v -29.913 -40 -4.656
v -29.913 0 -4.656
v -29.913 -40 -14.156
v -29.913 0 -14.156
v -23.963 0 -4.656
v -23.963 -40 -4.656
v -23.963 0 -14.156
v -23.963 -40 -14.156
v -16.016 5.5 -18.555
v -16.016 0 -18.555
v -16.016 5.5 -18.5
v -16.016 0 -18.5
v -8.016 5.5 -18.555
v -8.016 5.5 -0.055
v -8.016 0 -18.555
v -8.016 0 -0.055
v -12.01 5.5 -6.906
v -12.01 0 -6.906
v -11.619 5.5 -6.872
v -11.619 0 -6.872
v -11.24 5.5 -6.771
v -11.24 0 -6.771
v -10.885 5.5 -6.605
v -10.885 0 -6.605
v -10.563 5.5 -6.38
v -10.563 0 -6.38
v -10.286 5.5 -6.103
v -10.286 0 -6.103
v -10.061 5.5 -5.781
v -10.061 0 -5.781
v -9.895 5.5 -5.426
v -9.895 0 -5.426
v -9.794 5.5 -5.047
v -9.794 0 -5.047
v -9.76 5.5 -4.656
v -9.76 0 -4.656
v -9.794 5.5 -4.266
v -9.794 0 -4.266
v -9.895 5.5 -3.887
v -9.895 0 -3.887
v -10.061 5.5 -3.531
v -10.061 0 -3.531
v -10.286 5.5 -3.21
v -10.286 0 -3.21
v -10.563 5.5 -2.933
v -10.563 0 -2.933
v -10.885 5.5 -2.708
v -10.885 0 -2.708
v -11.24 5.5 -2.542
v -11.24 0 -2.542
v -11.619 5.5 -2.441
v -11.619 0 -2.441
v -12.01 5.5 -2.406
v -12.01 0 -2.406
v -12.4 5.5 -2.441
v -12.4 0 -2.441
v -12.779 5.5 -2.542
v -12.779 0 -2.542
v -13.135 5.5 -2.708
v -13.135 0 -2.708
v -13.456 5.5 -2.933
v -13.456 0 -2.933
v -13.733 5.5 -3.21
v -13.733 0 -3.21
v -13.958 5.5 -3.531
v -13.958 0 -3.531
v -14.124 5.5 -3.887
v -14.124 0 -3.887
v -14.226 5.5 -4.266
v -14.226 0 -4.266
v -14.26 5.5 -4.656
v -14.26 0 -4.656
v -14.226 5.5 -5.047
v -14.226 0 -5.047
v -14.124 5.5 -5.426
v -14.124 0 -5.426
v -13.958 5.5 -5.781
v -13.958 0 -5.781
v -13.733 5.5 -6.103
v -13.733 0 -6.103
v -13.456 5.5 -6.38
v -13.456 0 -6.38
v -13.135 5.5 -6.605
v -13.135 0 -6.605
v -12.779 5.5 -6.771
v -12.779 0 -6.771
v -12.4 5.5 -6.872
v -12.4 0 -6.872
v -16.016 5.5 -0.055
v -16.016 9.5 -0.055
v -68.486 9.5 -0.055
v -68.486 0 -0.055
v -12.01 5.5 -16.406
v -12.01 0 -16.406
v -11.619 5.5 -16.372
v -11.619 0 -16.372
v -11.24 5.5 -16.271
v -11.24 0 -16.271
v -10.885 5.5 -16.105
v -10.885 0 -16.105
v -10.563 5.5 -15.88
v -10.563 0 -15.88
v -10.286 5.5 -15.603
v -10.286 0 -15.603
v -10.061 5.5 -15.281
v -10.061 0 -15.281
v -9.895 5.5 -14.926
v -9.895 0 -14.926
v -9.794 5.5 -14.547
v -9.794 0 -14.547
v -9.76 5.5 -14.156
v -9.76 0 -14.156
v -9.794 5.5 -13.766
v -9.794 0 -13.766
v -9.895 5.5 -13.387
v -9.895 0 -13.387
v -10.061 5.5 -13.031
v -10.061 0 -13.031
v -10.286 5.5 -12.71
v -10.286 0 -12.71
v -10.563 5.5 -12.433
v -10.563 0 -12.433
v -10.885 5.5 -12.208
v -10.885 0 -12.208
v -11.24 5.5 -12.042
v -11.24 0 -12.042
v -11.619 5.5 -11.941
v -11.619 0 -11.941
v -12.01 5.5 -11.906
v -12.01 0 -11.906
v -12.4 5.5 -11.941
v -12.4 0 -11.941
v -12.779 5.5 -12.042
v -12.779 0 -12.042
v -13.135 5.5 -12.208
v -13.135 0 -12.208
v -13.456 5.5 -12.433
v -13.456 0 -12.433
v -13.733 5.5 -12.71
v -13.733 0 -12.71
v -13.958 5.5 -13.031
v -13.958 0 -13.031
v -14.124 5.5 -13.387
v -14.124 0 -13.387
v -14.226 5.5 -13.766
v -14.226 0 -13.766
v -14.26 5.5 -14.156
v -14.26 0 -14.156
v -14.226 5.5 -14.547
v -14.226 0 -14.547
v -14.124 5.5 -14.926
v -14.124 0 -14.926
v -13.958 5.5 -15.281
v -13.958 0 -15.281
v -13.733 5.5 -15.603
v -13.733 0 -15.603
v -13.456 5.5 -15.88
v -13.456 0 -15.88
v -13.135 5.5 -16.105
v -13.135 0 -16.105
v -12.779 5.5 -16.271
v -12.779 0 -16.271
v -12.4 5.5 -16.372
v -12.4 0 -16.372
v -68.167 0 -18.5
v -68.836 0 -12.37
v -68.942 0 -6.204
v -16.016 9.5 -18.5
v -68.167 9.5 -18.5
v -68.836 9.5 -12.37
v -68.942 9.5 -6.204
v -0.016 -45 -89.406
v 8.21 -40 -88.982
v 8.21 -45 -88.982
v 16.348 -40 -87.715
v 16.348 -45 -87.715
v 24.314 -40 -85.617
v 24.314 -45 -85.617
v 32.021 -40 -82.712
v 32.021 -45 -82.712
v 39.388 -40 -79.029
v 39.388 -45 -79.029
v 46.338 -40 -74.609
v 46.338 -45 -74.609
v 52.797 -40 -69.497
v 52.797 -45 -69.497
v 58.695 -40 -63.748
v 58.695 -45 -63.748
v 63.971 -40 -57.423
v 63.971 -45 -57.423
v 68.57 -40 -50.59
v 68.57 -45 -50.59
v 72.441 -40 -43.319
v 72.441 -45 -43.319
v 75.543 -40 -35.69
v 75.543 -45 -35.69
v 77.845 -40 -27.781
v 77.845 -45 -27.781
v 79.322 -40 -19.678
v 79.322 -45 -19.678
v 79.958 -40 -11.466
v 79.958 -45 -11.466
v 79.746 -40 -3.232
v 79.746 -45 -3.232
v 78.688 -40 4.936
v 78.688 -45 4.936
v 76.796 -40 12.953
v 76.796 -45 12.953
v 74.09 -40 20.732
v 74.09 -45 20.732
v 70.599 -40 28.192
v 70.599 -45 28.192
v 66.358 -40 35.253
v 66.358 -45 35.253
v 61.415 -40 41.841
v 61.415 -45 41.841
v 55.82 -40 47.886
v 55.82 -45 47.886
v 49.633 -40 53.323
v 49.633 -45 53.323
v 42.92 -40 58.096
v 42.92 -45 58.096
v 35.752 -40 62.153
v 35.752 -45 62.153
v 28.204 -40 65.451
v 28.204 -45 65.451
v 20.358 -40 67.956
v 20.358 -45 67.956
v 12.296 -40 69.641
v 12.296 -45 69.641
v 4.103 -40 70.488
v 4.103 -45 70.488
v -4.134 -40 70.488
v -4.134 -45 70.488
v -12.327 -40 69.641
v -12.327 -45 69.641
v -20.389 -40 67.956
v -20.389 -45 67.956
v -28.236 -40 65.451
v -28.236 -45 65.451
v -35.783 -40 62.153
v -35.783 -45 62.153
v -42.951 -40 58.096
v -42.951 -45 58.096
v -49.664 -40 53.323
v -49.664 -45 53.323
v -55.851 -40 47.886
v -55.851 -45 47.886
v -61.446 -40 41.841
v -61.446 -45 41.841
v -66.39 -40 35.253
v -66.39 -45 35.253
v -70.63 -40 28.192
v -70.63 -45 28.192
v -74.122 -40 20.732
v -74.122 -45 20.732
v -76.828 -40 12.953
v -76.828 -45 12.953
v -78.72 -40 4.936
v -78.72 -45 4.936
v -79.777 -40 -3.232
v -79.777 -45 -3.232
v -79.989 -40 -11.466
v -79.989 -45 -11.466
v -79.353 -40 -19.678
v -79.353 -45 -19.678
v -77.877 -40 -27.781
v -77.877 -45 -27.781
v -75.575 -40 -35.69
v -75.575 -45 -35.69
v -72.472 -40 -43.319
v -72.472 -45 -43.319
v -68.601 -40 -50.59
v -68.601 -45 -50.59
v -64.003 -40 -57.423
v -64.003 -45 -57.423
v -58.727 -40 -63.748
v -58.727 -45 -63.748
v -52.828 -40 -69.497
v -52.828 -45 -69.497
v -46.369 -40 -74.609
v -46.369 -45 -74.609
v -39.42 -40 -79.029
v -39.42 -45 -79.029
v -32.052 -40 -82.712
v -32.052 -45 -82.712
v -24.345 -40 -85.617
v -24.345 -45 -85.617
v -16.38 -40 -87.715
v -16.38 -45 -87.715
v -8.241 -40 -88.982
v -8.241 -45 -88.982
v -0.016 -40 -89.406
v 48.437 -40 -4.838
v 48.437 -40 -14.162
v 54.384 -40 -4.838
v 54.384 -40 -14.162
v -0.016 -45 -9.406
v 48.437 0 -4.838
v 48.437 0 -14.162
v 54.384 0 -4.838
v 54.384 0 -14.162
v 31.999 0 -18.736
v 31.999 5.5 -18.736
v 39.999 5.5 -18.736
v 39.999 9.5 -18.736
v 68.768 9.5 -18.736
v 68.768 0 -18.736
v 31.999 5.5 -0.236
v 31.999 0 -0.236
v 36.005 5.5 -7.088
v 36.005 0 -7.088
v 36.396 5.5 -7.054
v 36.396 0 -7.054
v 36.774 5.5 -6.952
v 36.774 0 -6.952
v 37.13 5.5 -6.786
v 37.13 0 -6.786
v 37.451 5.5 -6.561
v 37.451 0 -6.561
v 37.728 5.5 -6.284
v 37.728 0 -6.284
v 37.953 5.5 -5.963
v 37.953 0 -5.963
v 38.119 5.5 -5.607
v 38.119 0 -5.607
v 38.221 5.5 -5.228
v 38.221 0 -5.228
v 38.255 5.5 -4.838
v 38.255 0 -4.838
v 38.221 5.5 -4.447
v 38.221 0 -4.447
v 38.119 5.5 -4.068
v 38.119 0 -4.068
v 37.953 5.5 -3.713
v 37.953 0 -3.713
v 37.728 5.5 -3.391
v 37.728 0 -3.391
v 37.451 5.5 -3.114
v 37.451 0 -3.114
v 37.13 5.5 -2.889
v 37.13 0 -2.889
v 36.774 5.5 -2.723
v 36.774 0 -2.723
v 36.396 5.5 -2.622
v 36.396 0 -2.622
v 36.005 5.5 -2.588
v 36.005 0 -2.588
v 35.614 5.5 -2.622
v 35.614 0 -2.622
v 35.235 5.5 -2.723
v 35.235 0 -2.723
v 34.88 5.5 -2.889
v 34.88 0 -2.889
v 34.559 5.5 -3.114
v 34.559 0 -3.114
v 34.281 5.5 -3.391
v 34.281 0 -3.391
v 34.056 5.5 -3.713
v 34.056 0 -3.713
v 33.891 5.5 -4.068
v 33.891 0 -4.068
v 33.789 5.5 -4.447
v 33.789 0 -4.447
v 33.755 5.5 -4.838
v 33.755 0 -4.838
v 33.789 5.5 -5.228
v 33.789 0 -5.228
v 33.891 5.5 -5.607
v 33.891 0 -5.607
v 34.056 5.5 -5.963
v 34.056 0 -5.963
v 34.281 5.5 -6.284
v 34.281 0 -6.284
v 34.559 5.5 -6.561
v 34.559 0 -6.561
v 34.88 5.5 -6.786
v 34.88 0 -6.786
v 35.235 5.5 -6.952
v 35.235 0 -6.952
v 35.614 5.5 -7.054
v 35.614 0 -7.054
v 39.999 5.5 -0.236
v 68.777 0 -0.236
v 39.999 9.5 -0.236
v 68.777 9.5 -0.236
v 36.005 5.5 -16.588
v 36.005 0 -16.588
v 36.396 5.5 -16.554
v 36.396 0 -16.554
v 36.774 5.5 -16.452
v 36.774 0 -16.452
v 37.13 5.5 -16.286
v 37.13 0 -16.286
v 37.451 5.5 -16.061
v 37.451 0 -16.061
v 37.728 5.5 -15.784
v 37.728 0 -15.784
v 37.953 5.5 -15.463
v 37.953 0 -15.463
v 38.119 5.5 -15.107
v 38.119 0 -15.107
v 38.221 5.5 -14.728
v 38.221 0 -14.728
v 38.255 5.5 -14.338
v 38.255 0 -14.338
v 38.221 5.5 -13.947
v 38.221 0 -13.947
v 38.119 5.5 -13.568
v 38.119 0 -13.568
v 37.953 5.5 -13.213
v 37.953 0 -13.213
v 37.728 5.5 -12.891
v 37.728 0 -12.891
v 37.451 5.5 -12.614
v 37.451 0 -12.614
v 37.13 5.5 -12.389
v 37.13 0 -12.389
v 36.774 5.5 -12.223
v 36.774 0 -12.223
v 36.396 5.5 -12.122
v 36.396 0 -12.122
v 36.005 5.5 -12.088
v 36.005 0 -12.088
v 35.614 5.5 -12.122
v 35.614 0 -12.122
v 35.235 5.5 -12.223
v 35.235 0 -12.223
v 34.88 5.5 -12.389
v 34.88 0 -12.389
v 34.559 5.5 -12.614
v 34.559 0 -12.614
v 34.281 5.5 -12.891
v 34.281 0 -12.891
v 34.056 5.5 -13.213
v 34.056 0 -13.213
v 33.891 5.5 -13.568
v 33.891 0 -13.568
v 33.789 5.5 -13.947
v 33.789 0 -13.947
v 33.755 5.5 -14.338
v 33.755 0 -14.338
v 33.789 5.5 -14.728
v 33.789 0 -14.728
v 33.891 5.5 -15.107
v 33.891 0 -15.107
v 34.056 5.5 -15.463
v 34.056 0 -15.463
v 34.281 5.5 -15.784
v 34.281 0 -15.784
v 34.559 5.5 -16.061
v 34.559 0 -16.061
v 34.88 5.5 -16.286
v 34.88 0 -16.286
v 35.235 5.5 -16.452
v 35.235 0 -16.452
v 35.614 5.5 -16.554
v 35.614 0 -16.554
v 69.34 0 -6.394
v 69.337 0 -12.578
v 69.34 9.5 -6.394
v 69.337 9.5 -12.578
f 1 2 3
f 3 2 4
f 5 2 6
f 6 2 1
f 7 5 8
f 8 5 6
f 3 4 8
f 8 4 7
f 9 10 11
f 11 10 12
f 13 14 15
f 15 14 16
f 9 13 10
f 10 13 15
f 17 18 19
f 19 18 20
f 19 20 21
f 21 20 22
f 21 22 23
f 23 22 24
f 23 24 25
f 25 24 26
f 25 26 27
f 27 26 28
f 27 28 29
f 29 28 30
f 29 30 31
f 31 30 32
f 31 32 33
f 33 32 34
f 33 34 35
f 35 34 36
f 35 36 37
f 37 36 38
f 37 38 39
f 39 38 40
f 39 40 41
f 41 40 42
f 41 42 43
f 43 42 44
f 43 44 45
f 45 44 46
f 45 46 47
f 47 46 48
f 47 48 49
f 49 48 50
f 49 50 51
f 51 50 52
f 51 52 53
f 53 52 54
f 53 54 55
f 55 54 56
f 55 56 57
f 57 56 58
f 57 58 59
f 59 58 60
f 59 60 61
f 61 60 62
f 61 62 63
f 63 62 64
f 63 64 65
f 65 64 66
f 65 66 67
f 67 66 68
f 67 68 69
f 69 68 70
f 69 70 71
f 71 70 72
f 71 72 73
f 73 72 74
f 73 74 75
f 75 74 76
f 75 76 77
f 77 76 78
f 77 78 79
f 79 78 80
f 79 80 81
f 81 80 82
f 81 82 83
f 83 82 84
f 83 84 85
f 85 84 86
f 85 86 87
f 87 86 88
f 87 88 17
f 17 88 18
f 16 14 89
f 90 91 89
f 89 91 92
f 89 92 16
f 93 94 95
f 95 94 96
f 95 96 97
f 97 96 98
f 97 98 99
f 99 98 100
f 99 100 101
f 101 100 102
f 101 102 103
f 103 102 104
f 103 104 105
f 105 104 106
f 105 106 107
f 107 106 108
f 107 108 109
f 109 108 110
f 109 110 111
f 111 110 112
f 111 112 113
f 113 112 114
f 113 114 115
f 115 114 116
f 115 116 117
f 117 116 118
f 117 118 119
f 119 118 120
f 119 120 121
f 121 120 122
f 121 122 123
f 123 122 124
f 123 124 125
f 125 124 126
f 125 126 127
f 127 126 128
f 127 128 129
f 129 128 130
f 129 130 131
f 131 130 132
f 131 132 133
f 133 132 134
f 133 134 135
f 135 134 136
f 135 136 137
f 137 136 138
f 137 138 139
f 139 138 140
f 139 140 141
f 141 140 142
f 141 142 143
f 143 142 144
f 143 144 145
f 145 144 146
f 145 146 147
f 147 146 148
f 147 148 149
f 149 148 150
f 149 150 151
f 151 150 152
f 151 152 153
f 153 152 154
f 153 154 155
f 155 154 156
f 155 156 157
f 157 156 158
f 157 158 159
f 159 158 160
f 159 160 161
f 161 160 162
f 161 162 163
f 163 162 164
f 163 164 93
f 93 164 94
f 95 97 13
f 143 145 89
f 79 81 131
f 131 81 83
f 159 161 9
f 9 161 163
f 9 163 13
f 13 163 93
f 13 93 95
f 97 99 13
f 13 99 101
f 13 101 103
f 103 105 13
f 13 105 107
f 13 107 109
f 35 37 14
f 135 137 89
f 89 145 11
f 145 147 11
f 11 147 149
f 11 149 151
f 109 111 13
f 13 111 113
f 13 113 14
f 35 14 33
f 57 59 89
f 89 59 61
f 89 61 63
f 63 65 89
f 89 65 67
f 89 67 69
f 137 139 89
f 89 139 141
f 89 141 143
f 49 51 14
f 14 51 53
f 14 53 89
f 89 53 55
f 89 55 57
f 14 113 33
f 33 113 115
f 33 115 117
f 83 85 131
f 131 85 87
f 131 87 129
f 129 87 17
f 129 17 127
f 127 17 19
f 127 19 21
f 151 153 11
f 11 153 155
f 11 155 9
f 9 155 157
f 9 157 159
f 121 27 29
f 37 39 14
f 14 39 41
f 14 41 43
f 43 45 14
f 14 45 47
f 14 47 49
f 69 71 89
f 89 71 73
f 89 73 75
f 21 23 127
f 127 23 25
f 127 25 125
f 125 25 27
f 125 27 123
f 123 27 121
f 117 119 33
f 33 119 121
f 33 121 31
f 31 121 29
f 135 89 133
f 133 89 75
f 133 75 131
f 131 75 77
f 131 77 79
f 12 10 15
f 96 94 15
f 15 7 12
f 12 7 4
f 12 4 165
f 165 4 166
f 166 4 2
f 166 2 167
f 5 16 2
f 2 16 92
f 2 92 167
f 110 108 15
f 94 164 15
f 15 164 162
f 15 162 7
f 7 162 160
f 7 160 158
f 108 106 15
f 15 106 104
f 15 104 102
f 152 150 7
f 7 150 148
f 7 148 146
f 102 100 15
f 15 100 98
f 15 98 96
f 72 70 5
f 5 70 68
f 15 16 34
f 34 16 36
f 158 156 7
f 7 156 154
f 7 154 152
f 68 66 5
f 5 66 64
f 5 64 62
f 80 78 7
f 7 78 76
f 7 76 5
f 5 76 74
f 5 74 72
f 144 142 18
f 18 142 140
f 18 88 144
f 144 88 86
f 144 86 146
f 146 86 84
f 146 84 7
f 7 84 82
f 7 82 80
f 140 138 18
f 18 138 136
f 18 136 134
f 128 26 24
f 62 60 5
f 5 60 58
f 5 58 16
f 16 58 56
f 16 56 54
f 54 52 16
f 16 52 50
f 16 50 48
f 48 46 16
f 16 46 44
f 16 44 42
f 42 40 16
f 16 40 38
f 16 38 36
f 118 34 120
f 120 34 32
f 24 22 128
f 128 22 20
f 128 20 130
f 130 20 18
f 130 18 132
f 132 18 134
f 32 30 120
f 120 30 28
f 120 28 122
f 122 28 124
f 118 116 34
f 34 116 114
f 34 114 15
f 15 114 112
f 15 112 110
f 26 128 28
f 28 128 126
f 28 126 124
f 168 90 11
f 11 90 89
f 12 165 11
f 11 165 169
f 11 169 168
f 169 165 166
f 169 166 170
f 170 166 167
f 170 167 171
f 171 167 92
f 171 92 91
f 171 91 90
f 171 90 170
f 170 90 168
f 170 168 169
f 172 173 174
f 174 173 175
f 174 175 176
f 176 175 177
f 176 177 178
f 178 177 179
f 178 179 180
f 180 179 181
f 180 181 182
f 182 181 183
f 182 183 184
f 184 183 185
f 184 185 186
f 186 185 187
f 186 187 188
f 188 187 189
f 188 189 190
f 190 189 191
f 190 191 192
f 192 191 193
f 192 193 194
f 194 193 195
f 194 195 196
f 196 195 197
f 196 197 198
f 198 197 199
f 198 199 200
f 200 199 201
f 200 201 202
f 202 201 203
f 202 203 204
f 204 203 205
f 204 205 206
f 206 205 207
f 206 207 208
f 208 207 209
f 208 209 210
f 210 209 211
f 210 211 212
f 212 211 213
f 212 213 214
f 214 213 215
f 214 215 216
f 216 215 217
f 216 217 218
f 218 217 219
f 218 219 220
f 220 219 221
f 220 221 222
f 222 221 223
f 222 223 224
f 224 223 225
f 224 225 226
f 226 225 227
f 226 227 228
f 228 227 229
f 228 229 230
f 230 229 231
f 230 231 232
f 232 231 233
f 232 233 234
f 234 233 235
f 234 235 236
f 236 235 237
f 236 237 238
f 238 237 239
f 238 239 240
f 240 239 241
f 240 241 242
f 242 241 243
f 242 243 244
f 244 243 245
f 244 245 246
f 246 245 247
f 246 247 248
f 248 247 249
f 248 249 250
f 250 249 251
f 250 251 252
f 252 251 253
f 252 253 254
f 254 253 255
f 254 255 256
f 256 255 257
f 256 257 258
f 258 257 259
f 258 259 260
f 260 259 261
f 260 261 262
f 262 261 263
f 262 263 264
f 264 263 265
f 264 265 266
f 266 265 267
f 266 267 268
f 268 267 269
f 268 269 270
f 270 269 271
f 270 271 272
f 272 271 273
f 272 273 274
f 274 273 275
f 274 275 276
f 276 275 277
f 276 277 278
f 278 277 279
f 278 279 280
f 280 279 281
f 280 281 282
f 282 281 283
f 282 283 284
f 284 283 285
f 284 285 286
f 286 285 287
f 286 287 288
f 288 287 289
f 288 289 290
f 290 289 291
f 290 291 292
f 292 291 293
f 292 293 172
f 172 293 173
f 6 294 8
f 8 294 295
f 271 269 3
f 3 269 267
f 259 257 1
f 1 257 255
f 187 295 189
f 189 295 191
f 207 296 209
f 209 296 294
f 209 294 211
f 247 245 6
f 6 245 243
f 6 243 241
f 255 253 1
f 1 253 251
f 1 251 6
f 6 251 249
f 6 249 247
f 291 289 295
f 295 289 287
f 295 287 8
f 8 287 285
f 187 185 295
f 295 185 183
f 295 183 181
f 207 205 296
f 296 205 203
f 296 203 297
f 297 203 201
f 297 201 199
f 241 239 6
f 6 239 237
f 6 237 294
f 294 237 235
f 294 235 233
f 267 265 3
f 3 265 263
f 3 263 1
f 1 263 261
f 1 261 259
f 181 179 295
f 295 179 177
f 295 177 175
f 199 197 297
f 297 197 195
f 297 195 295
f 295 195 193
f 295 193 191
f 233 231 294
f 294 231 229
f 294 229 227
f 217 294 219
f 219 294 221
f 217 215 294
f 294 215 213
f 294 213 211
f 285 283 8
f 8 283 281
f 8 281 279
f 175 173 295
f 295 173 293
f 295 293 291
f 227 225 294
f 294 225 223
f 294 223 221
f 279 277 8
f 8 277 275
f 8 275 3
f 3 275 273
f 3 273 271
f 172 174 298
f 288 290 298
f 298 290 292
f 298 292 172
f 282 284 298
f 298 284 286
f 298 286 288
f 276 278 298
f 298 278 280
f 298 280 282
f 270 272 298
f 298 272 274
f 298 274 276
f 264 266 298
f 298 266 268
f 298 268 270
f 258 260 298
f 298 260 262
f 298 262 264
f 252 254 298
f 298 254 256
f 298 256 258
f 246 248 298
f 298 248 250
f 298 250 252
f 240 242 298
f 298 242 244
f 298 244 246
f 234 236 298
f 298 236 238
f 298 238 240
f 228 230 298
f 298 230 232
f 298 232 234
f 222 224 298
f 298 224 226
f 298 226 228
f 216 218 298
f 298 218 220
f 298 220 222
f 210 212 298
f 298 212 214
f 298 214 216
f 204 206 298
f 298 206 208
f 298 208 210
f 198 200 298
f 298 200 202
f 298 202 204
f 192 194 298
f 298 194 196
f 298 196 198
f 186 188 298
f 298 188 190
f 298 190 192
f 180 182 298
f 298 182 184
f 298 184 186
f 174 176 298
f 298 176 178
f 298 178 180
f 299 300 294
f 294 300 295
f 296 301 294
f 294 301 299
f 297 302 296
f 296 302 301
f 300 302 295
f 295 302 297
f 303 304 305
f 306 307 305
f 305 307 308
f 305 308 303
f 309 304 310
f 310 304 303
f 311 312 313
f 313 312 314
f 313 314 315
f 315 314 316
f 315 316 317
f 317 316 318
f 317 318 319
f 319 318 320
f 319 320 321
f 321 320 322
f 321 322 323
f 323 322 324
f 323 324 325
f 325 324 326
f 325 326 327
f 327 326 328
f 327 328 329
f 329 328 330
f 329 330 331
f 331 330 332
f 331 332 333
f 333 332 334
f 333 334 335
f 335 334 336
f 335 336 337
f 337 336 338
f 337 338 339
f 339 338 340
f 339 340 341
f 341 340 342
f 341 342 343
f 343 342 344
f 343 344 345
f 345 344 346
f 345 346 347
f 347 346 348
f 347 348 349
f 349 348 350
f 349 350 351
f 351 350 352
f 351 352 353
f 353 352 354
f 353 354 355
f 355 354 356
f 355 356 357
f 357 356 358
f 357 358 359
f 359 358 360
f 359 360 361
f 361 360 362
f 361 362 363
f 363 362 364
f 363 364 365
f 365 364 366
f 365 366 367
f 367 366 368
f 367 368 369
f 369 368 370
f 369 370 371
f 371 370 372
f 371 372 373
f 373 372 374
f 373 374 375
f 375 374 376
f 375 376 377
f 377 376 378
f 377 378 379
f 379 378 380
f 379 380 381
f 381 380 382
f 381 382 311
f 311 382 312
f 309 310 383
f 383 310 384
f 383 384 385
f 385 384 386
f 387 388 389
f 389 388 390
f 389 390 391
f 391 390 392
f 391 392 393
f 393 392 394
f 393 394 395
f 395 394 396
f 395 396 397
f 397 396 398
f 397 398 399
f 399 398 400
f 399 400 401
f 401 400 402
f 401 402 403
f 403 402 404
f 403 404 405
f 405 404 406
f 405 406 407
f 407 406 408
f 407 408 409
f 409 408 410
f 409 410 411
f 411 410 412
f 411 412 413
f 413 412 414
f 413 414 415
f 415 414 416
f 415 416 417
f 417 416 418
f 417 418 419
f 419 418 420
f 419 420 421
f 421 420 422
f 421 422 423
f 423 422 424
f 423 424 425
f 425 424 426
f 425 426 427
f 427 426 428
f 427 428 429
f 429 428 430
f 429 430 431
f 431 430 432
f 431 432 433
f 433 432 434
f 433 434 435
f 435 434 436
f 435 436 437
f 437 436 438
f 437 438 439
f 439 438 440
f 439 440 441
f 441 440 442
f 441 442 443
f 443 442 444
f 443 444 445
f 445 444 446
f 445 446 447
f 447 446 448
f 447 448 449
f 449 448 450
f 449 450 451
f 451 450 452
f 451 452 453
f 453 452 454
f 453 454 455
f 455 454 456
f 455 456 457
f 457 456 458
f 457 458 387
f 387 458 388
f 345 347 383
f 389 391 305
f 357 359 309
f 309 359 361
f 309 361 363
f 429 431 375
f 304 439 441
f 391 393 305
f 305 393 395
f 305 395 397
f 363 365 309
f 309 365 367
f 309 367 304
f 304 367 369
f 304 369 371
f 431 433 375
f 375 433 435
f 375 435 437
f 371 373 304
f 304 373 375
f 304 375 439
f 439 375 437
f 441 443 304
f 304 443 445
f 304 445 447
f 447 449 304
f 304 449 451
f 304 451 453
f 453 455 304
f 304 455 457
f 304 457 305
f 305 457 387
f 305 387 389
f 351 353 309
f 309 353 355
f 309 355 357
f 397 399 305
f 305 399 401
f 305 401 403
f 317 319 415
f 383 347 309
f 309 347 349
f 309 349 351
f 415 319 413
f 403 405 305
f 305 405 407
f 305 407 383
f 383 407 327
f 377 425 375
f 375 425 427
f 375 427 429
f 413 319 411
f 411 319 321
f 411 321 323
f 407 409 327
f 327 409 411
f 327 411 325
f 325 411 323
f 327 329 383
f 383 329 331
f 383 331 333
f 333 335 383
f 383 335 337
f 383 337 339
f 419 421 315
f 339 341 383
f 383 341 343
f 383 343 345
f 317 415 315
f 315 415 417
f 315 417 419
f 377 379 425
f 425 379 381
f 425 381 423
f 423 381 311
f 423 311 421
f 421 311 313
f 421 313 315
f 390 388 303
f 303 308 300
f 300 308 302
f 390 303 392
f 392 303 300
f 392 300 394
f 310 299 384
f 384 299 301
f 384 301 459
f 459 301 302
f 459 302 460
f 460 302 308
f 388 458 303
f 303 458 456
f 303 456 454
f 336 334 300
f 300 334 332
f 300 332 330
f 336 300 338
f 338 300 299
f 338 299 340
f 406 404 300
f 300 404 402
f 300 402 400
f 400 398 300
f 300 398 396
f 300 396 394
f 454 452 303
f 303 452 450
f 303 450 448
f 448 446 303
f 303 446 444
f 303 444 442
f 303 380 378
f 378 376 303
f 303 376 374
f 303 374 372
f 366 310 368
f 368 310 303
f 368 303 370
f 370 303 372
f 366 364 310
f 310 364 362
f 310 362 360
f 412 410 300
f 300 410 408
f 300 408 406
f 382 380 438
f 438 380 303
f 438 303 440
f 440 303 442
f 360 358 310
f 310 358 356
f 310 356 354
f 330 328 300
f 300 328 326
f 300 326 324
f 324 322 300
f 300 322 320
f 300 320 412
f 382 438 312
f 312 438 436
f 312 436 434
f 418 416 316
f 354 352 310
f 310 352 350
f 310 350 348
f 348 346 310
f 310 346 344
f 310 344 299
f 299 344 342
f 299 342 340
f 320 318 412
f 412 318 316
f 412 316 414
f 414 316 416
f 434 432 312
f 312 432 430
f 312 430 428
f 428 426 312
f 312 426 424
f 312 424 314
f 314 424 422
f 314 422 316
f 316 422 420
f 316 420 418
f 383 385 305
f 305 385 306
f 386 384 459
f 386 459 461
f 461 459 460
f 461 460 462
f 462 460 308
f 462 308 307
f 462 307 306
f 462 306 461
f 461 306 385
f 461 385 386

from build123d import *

# Parameters (mm, degrees)
SKETCH1_R                = 2.25
BOSS_EXTRUDE1_DEPTH      = 5.5
SKETCH1_3_W              = 5.95
SKETCH1_3_H              = 9.5
BOSS_EXTRUDE2_DEPTH      = 9.5
SKETCH1_4_R              = 2.25
BOSS_EXTRUDE3_DEPTH      = 5.5
SKETCH1_5_W              = 5.946489343
SKETCH1_5_H              = 9.324210581
BOSS_EXTRUDE4_DEPTH      = 9.5
BOSS_EXTRUDE5_DEPTH      = 9.5
BOSS_EXTRUDE5_DEPTH_BACK = 45
SKETCH1_6_W              = 5.95
SKETCH1_6_H              = 9.5
SKETCH1_6_W_2            = 5.946489343
SKETCH1_6_H_2            = 9.324210581
SKETCH2_R                = 80
BOSS_EXTRUDE6_DEPTH      = 5


with BuildPart() as part:
    # Sketch1 → Boss-Extrude1 (new body)
    with BuildSketch(Plane(origin=(0, 0, 0), x_dir=(1, 0, 0), z_dir=(0, 1, 0))):
        Polygon((-8.015677219, 18.554747116), (-16.015677219, 18.554747116), (-16.015677219, 18.5), (-16.015677219, 0.054747116), (-15.609707421, 0.054747116), (-8.409707421, 0.054747116), (-8.015677219, 0.054747116), align=None)
        with Locations((-12.009707421, 4.656325954)):
            Circle(SKETCH1_R, mode=Mode.SUBTRACT)
        with Locations((-12.009707421, 14.156325954)):
            Circle(SKETCH1_R, mode=Mode.SUBTRACT)
    extrude(amount=BOSS_EXTRUDE1_DEPTH)

    # Sketch1<3> → Boss-Extrude2 (add)
    with BuildSketch(Plane(origin=(0, 0, 0), x_dir=(1, 0, 0), z_dir=(0, 1, 0))):
        with BuildLine():
            Line((-16.015677219, 0.054747116), (-16.015677219, 18.5))
            Line((-16.015677219, 18.5), (-68.166690169, 18.5))
            ThreePointArc((-68.166690169, 18.5), (-68.959479844, 9.288334925), (-68.486040188, 0.054747116))
            Line((-68.486040188, 0.054747116), (-16.015677219, 0.054747116))
        make_face()
        with Locations((-26.93769232, 9.406325954)):
            Rectangle(SKETCH1_3_W, SKETCH1_3_H, mode=Mode.SUBTRACT)
    extrude(amount=BOSS_EXTRUDE2_DEPTH)



with BuildPart() as body_2:
    # Sketch1<4> → Boss-Extrude3 (new body)
    with BuildSketch(Plane(origin=(0, 0, 0), x_dir=(1, 0, 0), z_dir=(0, 1, 0))):
        Polygon((39.998888009, 18.73618908), (31.998888009, 18.73618908), (31.998888009, 0.23618908), (32.404857807, 0.23618908), (39.604857807, 0.23618908), (39.998888009, 0.23618908), align=None)
        with Locations((36.004857807, 4.837767918)):
            Circle(SKETCH1_4_R, mode=Mode.SUBTRACT)
        with Locations((36.004857807, 14.337767918)):
            Circle(SKETCH1_4_R, mode=Mode.SUBTRACT)
    extrude(amount=BOSS_EXTRUDE3_DEPTH)

    # Sketch1<5> → Boss-Extrude4 (add)
    with BuildSketch(Plane(origin=(0, 0, 0), x_dir=(1, 0, 0), z_dir=(0, 1, 0))):
        with BuildLine():
            Line((68.768167169, 18.73618908), (39.998888009, 18.73618908))
            Line((39.998888009, 18.73618908), (39.998888009, 0.23618908))
            Line((39.998888009, 0.23618908), (68.777433584, 0.23618908))
            ThreePointArc((68.777433584, 0.23618908), (69.409600563, 9.486508045), (68.768167169, 18.73618908))
        make_face()
        with Locations((51.410282917, 9.499873209)):
            Rectangle(SKETCH1_5_W, SKETCH1_5_H, mode=Mode.SUBTRACT)
    extrude(amount=BOSS_EXTRUDE4_DEPTH)


with BuildPart() as part_1:
    add(part.part)

    add(body_2.part)  # Boss-Extrude5 merges body 2
    # Sketch1<6> → Boss-Extrude5 (add, two sides: drawn at the far end of the back side and taken through both)
    with BuildSketch(Plane(origin=(0, 0, 0), x_dir=(1, 0, 0), z_dir=(0, 1, 0)).offset(-BOSS_EXTRUDE5_DEPTH_BACK)):
        with Locations((-26.93769232, 9.406325954)):
            Rectangle(SKETCH1_6_W, SKETCH1_6_H)
        with Locations((51.410282917, 9.499873209)):
            Rectangle(SKETCH1_6_W_2, SKETCH1_6_H_2)
    extrude(amount=BOSS_EXTRUDE5_DEPTH + BOSS_EXTRUDE5_DEPTH_BACK)

    # Sketch2 → Boss-Extrude6 (add)
    with BuildSketch(Plane.XZ.offset(45)):
        with Locations((-0.015677219, -9.406325954)):
            Circle(SKETCH2_R)
    extrude(amount=-BOSS_EXTRUDE6_DEPTH)


solid = part_1.part
